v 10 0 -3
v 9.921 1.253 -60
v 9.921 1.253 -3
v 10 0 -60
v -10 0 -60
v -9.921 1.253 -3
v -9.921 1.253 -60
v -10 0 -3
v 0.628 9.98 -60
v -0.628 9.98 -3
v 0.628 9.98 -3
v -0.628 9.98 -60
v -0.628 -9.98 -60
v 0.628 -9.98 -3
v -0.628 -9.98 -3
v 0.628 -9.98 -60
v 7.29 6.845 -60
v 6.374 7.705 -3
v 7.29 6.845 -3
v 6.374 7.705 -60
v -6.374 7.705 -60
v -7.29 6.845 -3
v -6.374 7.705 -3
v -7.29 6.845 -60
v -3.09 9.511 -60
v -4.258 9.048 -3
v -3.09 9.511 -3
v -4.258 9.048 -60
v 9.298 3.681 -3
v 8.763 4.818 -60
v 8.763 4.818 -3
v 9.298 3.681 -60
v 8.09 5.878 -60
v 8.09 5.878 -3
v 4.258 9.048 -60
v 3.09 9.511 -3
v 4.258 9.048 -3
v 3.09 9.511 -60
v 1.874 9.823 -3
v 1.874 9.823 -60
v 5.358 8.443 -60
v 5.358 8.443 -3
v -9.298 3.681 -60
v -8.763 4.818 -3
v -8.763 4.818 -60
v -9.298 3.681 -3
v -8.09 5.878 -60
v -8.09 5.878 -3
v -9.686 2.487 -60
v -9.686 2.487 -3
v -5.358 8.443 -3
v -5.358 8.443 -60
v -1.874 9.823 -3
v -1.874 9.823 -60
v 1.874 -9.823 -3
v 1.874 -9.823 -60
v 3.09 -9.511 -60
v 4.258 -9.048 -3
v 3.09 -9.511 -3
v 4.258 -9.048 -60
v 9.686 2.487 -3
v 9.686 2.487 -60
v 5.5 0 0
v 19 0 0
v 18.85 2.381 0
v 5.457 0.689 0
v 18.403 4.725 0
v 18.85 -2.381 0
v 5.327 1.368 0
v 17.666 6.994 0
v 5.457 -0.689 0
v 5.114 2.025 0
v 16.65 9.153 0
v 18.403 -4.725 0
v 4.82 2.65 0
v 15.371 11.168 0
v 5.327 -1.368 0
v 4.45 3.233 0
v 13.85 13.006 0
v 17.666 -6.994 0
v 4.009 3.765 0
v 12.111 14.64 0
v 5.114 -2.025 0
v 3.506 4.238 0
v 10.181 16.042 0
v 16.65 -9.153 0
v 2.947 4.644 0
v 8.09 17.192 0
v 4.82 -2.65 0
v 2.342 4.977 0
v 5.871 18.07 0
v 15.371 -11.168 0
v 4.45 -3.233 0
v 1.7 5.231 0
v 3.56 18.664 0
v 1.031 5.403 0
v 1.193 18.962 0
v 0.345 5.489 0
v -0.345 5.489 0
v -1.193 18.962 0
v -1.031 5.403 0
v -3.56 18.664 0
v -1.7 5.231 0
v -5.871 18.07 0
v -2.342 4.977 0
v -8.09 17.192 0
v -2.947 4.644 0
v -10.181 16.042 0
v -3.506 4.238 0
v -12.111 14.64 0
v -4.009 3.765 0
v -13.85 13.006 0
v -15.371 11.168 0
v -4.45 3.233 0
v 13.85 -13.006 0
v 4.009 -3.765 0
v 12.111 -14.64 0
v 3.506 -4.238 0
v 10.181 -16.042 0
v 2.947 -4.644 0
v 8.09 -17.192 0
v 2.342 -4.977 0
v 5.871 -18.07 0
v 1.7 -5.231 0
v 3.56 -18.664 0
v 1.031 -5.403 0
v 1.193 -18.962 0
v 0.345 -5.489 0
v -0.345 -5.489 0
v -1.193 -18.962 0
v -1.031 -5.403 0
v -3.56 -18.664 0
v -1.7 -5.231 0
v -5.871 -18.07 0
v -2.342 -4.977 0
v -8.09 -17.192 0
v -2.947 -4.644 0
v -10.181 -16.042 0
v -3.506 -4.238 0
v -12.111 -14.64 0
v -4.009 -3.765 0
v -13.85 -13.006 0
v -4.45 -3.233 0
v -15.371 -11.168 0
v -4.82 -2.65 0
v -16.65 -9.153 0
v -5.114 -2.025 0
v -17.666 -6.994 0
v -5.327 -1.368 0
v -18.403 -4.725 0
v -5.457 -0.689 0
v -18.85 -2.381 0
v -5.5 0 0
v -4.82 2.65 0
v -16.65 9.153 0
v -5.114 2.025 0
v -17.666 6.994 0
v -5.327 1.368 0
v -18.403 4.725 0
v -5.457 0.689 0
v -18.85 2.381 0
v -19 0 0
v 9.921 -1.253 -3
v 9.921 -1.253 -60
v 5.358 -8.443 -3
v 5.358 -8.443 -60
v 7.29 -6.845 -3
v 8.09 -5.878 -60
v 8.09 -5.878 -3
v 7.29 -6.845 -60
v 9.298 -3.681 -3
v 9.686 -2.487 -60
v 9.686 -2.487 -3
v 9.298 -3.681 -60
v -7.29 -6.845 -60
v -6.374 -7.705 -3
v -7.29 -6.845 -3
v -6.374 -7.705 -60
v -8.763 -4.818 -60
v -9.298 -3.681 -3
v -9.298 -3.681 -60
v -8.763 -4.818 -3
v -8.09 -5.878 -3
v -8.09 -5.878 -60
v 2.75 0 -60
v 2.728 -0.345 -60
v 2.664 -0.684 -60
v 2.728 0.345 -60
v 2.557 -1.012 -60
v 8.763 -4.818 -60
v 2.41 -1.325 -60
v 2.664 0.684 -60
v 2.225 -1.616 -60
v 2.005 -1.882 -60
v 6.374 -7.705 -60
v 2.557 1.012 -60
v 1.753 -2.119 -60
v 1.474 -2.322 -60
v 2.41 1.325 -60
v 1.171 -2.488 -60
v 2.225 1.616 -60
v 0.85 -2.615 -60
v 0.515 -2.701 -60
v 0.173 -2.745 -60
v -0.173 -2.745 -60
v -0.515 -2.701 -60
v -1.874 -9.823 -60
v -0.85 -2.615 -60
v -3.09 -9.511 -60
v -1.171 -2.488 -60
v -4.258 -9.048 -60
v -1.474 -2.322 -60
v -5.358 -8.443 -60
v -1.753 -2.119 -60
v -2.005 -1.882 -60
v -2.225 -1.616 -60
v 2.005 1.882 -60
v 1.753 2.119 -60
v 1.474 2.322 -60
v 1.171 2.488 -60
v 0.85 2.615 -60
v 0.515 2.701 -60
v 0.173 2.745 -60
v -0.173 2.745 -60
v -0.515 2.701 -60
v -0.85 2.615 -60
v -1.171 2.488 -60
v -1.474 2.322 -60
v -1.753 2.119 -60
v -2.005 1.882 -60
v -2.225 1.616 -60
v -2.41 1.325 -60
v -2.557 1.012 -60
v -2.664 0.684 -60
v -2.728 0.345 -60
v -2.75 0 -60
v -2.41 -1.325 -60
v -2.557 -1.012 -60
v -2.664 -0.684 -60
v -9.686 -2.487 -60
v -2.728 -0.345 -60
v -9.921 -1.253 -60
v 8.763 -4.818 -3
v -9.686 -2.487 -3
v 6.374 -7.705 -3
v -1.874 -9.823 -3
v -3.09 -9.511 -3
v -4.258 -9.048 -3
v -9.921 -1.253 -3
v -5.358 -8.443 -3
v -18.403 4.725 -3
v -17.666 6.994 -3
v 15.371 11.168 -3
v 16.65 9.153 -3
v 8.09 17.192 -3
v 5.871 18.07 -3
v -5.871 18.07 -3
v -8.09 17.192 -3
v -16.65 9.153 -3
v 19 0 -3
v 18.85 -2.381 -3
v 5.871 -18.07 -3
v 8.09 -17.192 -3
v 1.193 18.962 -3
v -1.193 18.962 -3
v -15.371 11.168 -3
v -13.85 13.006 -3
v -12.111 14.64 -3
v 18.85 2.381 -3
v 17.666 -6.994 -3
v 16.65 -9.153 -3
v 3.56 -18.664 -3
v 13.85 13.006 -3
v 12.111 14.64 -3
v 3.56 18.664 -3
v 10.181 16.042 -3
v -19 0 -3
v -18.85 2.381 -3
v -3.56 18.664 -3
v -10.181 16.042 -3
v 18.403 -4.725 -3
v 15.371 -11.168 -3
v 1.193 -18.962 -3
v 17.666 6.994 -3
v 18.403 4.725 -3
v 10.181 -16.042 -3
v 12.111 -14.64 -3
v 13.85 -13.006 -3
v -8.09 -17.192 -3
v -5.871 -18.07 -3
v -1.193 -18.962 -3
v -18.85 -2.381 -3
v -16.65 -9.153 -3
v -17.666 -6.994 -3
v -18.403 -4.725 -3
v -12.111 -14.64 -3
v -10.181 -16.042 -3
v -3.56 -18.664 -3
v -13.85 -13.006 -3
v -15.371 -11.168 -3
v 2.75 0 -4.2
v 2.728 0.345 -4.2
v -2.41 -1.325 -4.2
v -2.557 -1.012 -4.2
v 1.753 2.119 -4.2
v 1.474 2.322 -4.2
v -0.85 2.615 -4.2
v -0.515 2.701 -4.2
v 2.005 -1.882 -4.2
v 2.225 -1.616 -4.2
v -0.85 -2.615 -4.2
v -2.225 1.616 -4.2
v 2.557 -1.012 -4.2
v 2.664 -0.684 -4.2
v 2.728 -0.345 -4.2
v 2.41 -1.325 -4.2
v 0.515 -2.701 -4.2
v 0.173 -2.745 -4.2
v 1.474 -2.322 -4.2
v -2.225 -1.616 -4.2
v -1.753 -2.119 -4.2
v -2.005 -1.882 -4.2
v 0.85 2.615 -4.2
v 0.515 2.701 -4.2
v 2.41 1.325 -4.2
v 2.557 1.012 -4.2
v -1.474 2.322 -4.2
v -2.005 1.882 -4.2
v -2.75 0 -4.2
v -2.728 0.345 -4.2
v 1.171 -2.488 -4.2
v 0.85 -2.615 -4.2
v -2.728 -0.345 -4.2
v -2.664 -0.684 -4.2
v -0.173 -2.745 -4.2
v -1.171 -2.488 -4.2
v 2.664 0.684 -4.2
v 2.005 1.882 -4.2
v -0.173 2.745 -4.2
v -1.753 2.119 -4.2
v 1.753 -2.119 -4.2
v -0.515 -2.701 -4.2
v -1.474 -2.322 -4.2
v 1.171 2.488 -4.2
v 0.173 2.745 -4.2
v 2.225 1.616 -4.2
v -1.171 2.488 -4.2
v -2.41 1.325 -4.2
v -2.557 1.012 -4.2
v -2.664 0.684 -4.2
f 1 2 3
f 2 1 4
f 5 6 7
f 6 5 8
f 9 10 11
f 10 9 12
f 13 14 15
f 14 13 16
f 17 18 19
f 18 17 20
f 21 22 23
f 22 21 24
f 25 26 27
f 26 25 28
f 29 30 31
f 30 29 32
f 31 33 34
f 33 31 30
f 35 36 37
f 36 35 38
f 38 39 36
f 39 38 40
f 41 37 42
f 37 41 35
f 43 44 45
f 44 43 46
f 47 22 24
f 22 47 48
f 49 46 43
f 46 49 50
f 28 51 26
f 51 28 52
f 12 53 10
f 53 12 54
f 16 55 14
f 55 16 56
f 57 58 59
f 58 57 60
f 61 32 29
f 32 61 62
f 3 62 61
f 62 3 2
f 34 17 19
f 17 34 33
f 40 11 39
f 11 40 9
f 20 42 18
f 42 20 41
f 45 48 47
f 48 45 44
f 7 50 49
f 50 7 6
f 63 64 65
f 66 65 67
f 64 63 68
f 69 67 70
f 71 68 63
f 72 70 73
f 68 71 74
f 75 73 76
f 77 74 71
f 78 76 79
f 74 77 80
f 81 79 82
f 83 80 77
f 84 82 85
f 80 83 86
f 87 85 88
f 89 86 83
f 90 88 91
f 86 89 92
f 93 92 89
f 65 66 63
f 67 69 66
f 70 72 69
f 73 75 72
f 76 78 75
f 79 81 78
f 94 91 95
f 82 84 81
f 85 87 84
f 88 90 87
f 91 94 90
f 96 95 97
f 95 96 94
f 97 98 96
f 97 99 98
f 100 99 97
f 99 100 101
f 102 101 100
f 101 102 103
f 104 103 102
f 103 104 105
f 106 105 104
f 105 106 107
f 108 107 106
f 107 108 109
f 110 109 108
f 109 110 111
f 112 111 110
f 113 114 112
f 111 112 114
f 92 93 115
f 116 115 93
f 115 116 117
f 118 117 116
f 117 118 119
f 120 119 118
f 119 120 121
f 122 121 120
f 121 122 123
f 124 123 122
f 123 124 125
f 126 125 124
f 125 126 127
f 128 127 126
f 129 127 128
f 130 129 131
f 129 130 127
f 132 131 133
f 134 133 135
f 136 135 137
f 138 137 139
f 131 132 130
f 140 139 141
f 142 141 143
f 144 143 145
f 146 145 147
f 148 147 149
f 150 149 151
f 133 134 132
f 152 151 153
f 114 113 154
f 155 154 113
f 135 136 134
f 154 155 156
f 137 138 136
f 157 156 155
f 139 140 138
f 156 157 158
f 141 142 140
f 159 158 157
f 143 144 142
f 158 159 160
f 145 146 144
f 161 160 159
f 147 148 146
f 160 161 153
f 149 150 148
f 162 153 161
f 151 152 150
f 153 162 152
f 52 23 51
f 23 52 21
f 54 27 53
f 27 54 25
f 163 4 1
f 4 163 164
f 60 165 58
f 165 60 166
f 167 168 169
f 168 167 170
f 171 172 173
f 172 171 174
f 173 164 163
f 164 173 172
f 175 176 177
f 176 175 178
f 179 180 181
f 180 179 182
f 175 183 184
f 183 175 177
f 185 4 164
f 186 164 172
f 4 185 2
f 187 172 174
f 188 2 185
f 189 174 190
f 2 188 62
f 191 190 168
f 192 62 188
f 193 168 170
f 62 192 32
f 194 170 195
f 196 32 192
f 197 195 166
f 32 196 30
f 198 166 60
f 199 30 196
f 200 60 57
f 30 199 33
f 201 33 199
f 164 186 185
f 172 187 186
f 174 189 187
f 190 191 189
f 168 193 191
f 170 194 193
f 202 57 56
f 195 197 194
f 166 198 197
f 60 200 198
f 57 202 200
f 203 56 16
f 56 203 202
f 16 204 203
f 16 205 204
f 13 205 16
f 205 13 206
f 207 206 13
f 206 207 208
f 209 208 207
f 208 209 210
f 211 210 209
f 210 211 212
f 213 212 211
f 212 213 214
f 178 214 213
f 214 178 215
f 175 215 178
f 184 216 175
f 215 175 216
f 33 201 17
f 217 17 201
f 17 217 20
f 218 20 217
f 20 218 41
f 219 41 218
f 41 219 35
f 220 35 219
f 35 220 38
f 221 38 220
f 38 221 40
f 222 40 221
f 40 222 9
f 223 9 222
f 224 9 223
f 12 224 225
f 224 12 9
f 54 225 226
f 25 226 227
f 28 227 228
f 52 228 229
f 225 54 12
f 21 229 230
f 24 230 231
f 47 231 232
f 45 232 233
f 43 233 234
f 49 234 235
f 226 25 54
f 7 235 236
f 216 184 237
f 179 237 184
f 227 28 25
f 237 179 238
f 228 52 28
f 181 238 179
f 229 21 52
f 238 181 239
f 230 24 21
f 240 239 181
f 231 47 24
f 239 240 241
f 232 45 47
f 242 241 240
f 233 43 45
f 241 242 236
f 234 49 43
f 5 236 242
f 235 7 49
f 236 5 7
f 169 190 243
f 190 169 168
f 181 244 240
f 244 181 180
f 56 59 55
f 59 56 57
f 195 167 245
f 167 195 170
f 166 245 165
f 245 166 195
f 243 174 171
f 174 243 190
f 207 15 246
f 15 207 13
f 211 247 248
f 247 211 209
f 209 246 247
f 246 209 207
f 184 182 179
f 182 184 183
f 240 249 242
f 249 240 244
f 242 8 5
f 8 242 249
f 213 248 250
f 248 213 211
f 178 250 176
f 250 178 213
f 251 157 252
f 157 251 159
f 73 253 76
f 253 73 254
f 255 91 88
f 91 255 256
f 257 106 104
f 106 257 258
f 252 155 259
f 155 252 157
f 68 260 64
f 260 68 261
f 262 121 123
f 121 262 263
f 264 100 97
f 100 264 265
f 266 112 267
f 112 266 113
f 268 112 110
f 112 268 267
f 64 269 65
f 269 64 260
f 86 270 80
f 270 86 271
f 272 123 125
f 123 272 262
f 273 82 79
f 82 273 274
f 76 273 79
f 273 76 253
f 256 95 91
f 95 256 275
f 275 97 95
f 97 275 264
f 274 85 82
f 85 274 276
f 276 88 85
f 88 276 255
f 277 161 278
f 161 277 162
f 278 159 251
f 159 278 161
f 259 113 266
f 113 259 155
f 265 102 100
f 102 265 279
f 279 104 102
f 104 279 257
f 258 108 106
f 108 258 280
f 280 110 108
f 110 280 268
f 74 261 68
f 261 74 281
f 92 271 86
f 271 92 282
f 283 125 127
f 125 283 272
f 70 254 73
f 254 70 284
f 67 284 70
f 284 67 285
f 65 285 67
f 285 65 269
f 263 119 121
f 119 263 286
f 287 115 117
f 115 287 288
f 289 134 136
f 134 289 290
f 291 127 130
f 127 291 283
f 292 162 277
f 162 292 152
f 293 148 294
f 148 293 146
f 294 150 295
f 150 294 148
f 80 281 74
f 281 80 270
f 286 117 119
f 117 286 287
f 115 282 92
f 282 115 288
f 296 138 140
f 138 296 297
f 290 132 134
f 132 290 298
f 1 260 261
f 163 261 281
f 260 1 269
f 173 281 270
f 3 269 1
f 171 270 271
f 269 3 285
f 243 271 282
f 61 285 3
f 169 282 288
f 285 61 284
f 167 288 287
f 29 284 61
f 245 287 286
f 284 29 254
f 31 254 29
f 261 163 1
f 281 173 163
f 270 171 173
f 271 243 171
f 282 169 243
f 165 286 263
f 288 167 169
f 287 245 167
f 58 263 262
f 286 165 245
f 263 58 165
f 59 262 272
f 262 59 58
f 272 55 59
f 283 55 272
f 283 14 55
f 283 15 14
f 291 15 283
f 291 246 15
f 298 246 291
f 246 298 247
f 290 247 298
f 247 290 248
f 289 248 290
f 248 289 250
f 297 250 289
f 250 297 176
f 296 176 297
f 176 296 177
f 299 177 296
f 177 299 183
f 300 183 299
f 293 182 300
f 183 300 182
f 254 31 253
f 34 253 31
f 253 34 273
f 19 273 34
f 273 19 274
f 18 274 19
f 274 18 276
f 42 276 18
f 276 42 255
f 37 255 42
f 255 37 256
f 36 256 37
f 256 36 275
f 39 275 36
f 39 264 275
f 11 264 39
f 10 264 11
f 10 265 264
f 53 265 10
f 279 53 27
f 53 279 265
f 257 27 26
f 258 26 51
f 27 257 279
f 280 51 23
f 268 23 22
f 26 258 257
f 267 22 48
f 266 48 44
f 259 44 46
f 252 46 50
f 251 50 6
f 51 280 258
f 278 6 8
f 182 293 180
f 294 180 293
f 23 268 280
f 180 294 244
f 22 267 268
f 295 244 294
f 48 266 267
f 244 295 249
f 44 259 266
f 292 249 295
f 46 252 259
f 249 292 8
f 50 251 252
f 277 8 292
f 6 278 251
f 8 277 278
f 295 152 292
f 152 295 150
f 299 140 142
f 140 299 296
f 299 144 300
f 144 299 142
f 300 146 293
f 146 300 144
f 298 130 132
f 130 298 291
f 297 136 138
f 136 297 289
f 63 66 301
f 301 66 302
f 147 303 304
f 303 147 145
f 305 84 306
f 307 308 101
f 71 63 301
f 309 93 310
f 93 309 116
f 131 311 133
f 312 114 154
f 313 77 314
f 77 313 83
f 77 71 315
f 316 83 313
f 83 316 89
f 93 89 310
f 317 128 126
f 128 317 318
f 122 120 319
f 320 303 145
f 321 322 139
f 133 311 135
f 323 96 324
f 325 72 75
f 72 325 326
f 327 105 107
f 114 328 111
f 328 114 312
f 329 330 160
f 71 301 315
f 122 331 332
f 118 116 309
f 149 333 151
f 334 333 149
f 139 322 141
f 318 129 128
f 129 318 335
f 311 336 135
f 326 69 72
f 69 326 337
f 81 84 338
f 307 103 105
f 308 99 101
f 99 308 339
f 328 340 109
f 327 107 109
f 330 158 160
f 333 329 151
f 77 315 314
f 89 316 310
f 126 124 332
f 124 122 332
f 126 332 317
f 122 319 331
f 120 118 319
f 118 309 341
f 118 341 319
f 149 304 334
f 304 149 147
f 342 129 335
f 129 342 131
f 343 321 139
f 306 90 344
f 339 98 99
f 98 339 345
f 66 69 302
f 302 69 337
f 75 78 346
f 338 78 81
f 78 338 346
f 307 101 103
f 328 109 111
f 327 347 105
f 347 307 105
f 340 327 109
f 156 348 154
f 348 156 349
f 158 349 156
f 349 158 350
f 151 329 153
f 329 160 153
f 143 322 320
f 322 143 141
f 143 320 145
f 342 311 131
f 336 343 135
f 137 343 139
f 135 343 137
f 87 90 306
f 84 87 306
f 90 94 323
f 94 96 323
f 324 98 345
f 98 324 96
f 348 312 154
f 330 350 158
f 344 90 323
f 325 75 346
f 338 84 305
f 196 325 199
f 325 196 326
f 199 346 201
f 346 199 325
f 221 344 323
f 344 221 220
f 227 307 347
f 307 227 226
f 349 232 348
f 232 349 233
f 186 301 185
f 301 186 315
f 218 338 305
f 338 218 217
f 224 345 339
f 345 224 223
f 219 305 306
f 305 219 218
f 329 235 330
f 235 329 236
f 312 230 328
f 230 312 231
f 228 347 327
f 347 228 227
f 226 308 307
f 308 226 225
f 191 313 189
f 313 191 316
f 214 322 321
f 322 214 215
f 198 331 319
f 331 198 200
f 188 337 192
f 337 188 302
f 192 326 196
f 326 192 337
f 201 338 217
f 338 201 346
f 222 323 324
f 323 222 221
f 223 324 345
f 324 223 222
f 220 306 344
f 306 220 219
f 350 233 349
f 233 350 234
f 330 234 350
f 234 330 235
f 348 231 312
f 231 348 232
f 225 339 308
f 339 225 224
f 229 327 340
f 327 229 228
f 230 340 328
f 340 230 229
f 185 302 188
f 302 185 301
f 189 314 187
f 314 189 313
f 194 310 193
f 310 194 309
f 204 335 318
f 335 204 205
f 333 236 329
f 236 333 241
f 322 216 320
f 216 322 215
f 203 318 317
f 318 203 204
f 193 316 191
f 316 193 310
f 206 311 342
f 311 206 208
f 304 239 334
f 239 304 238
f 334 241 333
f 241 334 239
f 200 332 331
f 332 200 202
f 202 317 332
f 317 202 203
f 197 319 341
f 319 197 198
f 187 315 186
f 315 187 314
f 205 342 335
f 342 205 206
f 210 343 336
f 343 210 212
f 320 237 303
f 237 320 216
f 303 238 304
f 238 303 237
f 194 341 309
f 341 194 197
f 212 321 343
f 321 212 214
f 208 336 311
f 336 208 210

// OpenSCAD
$fn = 50;


difference() {
	union() {
		translate(v = [0, 0, -60.0000000000]) {
			cylinder(h = 60, r = 10.0000000000);
		}
		translate(v = [0, 0, -3.0000000000]) {
			cylinder(h = 3, r = 19.0000000000);
		}
	}
	union() {
		translate(v = [0, 0, 0]) {
			rotate(a = [0, 0, 0]) {
				difference() {
					union() {
						#translate(v = [0, 0, -60.0000000000]) {
							cylinder(h = 60, r = 2.2500000000);
						}
						#translate(v = [0, 0, -4.2000000000]) {
							cylinder(h = 4.2000000000, r = 10.0000000000, r1 = 2.7500000000, r2 = 5.5000000000);
						}
						#translate(v = [0, 0, -60.0000000000]) {
							cylinder(h = 60, r = 2.7500000000);
						}
						#translate(v = [0, 0, -60.0000000000]) {
							cylinder(h = 60, r = 2.2500000000);
						}
					}
					union();
				}
			}
		}
	}
}
